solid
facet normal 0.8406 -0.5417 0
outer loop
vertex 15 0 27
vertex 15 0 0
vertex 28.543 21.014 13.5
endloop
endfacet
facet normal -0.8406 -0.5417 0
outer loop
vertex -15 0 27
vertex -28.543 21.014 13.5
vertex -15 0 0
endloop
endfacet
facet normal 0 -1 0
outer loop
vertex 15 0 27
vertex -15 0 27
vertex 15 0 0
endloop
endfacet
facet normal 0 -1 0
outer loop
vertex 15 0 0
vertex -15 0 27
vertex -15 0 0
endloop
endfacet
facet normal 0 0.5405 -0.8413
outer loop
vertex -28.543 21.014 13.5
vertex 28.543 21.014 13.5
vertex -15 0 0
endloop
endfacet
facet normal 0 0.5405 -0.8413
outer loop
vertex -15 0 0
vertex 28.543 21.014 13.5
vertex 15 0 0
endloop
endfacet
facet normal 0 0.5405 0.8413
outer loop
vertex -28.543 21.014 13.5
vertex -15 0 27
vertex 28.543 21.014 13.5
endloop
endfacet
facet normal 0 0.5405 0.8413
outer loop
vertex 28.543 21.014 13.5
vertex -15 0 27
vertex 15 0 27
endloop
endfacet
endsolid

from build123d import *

# Parameters (mm, degrees)
BOSS_EXTRUDE2_DEPTH     = 27
CUT_EXTRUDE4_DEPTH      = 37
CUT_EXTRUDE4_DEPTH_BACK = 37
CUT_EXTRUDE5_DEPTH      = 37
CUT_EXTRUDE5_DEPTH_BACK = 37


with BuildPart() as part:
    # Sketch1 → Boss-Extrude2 (new body)
    with BuildSketch(Plane.XY):
        Polygon((15, 0), (-15, 0), (-28.5432741, 21.013798482), (28.5432741, 21.013798482), align=None)
    extrude(amount=BOSS_EXTRUDE2_DEPTH)

    # Sketch3 → Cut-Extrude4 (cut, two sides: drawn at the far end of the back side and taken through both)
    with BuildSketch(Plane(origin=(0, 0, 0), x_dir=(0, 0, -1), z_dir=(1, 0, 0)).offset(-CUT_EXTRUDE4_DEPTH_BACK)):
        Polygon((-13.5, 21.013798482), (0, 0), (0, 21.013798482), align=None)
    extrude(amount=CUT_EXTRUDE4_DEPTH + CUT_EXTRUDE4_DEPTH_BACK, mode=Mode.SUBTRACT)

    # Sketch4 → Cut-Extrude5 (cut, two sides: drawn at the far end of the back side and taken through both)
    with BuildSketch(Plane(origin=(0, 0, 0), x_dir=(0, 0, -1), z_dir=(1, 0, 0)).offset(-CUT_EXTRUDE5_DEPTH_BACK)):
        Polygon((-13.5, 21.013798482), (-27, 0), (-27, 21.013798482), align=None)
    extrude(amount=CUT_EXTRUDE5_DEPTH + CUT_EXTRUDE5_DEPTH_BACK, mode=Mode.SUBTRACT)


solid = part.part
